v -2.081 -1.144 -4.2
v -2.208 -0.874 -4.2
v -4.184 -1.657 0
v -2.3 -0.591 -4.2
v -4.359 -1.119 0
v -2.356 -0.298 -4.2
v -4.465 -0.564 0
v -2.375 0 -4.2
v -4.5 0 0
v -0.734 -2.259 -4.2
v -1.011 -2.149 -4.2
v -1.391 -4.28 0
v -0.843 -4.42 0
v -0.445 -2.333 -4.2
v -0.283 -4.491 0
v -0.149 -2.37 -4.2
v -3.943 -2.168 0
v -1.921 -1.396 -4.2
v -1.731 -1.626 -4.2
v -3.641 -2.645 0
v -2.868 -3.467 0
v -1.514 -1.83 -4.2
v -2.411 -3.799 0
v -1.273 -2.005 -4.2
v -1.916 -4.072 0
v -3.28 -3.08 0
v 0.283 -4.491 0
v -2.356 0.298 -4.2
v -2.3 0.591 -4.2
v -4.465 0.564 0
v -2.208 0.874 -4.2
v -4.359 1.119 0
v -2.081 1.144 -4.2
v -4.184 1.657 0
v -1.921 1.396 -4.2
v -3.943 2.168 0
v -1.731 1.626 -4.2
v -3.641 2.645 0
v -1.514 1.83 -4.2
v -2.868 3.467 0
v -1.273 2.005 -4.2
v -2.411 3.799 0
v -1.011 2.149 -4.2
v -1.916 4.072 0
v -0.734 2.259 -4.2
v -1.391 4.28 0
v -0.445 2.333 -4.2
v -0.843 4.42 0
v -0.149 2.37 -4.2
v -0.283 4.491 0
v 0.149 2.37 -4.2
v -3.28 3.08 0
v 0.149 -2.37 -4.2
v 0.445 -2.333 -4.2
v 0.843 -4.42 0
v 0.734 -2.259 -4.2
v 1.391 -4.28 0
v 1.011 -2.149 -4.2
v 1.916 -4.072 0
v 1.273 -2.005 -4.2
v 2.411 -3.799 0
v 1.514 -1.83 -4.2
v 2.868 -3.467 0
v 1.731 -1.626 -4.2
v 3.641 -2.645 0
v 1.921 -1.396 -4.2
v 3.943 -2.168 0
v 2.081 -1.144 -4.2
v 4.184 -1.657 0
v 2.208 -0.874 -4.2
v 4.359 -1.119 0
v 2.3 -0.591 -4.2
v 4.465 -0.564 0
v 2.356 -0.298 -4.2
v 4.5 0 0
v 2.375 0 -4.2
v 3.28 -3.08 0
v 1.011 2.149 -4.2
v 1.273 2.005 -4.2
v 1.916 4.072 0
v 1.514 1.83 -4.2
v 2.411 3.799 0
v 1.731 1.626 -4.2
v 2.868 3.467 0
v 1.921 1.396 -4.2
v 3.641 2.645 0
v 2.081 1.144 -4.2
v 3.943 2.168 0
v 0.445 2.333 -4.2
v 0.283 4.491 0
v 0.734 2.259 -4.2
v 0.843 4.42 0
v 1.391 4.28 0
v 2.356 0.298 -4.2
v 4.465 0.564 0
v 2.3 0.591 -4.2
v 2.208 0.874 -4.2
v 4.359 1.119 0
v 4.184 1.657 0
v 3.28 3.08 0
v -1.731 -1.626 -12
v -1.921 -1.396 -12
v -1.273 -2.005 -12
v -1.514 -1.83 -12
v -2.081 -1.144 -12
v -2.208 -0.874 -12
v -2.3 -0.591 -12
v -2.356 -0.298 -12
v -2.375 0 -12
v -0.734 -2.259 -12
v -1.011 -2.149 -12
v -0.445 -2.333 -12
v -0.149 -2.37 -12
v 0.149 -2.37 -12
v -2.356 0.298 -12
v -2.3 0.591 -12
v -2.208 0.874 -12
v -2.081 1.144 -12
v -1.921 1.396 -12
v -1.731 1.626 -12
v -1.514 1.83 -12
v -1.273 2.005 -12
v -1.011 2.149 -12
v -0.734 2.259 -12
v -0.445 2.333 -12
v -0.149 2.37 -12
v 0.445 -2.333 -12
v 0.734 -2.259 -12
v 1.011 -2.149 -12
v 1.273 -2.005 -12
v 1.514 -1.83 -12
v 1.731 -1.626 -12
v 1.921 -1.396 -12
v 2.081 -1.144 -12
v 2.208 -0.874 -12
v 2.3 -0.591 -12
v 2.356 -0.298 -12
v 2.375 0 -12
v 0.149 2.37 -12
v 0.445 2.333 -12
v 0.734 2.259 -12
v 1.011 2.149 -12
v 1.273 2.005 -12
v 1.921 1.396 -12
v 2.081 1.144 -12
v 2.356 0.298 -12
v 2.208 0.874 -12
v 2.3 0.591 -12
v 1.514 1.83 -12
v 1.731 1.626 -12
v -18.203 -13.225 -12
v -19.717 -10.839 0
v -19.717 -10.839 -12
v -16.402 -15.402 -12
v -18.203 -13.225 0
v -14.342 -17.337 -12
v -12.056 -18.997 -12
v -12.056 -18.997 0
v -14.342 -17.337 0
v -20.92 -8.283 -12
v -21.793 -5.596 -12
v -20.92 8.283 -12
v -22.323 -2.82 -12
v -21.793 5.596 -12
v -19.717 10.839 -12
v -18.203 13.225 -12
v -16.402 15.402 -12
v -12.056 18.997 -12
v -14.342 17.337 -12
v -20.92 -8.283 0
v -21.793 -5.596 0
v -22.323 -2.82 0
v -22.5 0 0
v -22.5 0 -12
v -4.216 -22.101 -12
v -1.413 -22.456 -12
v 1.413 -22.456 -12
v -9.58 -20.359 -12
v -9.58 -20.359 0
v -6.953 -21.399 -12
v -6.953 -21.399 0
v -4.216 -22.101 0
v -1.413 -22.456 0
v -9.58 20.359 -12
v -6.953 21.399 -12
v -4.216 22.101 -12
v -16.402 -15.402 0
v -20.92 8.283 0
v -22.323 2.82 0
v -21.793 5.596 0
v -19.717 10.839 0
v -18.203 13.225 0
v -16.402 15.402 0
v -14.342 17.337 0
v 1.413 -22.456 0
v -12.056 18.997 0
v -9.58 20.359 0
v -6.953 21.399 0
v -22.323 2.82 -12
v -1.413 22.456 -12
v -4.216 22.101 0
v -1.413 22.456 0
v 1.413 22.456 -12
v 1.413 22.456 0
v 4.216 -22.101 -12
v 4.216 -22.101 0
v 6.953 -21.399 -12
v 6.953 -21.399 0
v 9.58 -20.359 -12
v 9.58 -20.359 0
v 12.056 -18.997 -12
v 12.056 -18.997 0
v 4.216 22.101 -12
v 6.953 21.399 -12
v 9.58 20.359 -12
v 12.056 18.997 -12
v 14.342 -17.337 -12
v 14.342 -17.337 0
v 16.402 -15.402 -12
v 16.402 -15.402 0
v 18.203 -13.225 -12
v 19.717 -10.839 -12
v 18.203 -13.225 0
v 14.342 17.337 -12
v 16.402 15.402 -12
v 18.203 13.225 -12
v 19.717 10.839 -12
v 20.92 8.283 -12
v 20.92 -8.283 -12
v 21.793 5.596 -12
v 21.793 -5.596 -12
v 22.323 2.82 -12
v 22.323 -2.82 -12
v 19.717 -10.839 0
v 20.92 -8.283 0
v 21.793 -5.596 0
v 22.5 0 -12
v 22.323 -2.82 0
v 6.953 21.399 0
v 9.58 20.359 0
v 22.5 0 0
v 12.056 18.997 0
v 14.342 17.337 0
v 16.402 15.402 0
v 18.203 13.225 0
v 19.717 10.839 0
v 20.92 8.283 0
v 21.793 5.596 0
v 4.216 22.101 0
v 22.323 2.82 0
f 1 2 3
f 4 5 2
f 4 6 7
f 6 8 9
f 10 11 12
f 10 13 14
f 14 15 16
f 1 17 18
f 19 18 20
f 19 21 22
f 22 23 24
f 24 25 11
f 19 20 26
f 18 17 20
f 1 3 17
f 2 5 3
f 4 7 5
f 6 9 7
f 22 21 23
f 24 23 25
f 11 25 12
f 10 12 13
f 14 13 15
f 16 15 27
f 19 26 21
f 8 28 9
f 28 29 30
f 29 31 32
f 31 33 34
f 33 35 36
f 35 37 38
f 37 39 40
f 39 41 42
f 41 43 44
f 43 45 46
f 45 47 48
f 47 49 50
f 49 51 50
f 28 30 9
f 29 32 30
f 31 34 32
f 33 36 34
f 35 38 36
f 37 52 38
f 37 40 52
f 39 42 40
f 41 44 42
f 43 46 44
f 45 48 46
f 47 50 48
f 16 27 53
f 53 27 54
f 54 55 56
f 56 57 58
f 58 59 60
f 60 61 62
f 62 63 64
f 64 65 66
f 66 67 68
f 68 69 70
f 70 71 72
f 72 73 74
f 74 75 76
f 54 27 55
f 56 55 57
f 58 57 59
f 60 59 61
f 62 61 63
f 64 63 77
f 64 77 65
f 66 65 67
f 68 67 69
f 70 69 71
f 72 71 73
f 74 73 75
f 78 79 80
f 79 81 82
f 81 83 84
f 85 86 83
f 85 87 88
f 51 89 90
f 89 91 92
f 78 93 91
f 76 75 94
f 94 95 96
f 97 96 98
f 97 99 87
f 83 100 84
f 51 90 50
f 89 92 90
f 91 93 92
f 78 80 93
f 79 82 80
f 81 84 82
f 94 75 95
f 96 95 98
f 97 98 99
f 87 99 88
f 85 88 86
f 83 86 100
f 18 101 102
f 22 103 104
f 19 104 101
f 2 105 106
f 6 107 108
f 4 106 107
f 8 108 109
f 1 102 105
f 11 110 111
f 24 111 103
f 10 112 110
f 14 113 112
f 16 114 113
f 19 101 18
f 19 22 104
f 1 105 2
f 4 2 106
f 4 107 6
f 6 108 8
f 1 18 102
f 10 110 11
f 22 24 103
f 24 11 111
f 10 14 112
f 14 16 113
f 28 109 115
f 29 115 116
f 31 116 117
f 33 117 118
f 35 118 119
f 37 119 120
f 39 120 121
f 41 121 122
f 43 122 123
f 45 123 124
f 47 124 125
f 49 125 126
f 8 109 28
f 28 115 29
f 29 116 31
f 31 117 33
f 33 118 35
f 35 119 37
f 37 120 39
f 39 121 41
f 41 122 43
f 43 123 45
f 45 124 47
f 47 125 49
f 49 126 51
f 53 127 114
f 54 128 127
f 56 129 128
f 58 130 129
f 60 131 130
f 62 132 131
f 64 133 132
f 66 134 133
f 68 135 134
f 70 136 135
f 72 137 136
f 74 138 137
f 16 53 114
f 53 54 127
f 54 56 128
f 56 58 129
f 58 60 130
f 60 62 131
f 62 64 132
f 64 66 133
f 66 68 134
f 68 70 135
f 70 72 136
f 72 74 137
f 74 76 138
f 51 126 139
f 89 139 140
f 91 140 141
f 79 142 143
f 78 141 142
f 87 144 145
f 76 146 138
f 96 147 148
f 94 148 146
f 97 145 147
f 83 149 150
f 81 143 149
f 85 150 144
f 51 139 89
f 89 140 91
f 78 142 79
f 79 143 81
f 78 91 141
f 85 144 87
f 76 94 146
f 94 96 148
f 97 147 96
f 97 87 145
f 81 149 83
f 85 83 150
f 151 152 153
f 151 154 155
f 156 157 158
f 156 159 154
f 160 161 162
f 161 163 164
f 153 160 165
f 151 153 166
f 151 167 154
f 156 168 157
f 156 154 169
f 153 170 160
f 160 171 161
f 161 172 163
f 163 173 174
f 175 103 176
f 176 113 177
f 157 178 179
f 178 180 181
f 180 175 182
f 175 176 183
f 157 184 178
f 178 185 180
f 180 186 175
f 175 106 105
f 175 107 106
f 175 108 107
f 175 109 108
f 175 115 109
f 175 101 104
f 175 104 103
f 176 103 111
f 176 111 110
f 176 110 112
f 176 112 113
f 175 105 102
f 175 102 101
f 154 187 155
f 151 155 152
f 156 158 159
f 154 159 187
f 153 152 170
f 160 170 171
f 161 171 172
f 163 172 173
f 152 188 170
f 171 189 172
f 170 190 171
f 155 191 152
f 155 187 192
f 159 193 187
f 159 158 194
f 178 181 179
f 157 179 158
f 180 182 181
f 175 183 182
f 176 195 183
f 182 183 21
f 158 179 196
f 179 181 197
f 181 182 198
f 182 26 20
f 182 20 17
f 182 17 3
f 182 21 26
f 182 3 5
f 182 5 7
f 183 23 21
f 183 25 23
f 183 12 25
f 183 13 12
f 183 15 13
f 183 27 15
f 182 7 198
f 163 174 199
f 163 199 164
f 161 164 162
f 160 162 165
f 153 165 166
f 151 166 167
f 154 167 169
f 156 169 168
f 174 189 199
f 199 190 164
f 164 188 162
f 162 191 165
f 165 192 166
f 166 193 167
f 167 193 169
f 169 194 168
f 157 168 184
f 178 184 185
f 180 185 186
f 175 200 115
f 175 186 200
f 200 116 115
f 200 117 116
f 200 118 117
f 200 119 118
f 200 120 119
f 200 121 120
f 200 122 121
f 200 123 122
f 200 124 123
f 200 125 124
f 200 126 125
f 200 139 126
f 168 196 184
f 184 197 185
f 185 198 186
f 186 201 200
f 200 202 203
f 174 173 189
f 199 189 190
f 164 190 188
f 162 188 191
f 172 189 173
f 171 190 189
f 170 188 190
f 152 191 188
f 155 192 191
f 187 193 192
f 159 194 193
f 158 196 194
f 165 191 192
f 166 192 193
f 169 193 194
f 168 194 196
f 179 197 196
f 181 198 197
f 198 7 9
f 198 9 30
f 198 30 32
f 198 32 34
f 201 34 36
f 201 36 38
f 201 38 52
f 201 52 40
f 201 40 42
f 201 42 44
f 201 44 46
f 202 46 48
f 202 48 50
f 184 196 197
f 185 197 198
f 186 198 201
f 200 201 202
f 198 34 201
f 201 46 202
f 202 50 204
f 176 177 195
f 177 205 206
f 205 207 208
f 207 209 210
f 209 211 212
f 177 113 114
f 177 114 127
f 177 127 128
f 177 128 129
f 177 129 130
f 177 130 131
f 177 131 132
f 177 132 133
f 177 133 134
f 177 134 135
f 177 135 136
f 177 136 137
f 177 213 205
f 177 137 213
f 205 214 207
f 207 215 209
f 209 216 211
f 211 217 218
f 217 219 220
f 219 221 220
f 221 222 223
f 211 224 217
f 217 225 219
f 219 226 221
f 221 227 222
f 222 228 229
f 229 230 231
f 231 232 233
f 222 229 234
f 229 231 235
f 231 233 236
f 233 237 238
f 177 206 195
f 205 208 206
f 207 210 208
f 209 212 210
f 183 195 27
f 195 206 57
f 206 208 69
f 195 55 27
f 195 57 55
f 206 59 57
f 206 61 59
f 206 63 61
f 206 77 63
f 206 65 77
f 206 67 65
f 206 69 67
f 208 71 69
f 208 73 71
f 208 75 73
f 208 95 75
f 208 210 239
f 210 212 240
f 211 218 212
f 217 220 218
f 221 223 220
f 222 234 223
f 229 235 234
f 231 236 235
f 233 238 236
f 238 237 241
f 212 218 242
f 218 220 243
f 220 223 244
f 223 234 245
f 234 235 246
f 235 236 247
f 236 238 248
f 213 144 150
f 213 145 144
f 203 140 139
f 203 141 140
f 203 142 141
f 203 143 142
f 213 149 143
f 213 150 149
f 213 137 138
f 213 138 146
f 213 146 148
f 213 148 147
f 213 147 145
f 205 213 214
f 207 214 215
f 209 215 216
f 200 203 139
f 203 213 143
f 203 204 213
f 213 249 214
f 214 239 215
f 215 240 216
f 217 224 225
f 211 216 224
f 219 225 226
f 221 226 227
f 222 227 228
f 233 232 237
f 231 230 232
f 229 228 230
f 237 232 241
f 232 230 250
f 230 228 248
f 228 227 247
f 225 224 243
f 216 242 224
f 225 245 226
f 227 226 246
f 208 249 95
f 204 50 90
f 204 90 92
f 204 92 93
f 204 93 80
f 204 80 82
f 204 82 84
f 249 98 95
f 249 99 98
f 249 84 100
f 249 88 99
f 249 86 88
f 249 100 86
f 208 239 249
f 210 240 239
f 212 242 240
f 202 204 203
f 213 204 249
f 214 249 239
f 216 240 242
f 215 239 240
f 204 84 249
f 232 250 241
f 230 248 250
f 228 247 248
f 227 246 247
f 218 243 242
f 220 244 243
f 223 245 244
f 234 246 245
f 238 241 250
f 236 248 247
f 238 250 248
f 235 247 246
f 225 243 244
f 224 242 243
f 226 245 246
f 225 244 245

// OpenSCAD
$fn = 50;

difference() {
	union() {
		translate(v = [0, 0, -12.0]) {
			cylinder(h = 12, r = 22.5);
		}
	}
	union() {
		translate(v = [0, 0, 0]) {
			rotate(a = [0, 0, 0]) {
				difference() {
					union() {
						translate(v = [0, 0, -15.0]) {
							cylinder(h = 15, r = 2.25);
						}
						translate(v = [0, 0, -4.2]) {
							cylinder(h = 4.2, r1 = 2.375, r2 = 4.5);
						}
						translate(v = [0, 0, -15.0]) {
							cylinder(h = 15, r = 2.375);
						}
						translate(v = [0, 0, -15.0]) {
							cylinder(h = 15, r = 2.25);
						}
					}
					union();
				}
			}
		}
	}
}
